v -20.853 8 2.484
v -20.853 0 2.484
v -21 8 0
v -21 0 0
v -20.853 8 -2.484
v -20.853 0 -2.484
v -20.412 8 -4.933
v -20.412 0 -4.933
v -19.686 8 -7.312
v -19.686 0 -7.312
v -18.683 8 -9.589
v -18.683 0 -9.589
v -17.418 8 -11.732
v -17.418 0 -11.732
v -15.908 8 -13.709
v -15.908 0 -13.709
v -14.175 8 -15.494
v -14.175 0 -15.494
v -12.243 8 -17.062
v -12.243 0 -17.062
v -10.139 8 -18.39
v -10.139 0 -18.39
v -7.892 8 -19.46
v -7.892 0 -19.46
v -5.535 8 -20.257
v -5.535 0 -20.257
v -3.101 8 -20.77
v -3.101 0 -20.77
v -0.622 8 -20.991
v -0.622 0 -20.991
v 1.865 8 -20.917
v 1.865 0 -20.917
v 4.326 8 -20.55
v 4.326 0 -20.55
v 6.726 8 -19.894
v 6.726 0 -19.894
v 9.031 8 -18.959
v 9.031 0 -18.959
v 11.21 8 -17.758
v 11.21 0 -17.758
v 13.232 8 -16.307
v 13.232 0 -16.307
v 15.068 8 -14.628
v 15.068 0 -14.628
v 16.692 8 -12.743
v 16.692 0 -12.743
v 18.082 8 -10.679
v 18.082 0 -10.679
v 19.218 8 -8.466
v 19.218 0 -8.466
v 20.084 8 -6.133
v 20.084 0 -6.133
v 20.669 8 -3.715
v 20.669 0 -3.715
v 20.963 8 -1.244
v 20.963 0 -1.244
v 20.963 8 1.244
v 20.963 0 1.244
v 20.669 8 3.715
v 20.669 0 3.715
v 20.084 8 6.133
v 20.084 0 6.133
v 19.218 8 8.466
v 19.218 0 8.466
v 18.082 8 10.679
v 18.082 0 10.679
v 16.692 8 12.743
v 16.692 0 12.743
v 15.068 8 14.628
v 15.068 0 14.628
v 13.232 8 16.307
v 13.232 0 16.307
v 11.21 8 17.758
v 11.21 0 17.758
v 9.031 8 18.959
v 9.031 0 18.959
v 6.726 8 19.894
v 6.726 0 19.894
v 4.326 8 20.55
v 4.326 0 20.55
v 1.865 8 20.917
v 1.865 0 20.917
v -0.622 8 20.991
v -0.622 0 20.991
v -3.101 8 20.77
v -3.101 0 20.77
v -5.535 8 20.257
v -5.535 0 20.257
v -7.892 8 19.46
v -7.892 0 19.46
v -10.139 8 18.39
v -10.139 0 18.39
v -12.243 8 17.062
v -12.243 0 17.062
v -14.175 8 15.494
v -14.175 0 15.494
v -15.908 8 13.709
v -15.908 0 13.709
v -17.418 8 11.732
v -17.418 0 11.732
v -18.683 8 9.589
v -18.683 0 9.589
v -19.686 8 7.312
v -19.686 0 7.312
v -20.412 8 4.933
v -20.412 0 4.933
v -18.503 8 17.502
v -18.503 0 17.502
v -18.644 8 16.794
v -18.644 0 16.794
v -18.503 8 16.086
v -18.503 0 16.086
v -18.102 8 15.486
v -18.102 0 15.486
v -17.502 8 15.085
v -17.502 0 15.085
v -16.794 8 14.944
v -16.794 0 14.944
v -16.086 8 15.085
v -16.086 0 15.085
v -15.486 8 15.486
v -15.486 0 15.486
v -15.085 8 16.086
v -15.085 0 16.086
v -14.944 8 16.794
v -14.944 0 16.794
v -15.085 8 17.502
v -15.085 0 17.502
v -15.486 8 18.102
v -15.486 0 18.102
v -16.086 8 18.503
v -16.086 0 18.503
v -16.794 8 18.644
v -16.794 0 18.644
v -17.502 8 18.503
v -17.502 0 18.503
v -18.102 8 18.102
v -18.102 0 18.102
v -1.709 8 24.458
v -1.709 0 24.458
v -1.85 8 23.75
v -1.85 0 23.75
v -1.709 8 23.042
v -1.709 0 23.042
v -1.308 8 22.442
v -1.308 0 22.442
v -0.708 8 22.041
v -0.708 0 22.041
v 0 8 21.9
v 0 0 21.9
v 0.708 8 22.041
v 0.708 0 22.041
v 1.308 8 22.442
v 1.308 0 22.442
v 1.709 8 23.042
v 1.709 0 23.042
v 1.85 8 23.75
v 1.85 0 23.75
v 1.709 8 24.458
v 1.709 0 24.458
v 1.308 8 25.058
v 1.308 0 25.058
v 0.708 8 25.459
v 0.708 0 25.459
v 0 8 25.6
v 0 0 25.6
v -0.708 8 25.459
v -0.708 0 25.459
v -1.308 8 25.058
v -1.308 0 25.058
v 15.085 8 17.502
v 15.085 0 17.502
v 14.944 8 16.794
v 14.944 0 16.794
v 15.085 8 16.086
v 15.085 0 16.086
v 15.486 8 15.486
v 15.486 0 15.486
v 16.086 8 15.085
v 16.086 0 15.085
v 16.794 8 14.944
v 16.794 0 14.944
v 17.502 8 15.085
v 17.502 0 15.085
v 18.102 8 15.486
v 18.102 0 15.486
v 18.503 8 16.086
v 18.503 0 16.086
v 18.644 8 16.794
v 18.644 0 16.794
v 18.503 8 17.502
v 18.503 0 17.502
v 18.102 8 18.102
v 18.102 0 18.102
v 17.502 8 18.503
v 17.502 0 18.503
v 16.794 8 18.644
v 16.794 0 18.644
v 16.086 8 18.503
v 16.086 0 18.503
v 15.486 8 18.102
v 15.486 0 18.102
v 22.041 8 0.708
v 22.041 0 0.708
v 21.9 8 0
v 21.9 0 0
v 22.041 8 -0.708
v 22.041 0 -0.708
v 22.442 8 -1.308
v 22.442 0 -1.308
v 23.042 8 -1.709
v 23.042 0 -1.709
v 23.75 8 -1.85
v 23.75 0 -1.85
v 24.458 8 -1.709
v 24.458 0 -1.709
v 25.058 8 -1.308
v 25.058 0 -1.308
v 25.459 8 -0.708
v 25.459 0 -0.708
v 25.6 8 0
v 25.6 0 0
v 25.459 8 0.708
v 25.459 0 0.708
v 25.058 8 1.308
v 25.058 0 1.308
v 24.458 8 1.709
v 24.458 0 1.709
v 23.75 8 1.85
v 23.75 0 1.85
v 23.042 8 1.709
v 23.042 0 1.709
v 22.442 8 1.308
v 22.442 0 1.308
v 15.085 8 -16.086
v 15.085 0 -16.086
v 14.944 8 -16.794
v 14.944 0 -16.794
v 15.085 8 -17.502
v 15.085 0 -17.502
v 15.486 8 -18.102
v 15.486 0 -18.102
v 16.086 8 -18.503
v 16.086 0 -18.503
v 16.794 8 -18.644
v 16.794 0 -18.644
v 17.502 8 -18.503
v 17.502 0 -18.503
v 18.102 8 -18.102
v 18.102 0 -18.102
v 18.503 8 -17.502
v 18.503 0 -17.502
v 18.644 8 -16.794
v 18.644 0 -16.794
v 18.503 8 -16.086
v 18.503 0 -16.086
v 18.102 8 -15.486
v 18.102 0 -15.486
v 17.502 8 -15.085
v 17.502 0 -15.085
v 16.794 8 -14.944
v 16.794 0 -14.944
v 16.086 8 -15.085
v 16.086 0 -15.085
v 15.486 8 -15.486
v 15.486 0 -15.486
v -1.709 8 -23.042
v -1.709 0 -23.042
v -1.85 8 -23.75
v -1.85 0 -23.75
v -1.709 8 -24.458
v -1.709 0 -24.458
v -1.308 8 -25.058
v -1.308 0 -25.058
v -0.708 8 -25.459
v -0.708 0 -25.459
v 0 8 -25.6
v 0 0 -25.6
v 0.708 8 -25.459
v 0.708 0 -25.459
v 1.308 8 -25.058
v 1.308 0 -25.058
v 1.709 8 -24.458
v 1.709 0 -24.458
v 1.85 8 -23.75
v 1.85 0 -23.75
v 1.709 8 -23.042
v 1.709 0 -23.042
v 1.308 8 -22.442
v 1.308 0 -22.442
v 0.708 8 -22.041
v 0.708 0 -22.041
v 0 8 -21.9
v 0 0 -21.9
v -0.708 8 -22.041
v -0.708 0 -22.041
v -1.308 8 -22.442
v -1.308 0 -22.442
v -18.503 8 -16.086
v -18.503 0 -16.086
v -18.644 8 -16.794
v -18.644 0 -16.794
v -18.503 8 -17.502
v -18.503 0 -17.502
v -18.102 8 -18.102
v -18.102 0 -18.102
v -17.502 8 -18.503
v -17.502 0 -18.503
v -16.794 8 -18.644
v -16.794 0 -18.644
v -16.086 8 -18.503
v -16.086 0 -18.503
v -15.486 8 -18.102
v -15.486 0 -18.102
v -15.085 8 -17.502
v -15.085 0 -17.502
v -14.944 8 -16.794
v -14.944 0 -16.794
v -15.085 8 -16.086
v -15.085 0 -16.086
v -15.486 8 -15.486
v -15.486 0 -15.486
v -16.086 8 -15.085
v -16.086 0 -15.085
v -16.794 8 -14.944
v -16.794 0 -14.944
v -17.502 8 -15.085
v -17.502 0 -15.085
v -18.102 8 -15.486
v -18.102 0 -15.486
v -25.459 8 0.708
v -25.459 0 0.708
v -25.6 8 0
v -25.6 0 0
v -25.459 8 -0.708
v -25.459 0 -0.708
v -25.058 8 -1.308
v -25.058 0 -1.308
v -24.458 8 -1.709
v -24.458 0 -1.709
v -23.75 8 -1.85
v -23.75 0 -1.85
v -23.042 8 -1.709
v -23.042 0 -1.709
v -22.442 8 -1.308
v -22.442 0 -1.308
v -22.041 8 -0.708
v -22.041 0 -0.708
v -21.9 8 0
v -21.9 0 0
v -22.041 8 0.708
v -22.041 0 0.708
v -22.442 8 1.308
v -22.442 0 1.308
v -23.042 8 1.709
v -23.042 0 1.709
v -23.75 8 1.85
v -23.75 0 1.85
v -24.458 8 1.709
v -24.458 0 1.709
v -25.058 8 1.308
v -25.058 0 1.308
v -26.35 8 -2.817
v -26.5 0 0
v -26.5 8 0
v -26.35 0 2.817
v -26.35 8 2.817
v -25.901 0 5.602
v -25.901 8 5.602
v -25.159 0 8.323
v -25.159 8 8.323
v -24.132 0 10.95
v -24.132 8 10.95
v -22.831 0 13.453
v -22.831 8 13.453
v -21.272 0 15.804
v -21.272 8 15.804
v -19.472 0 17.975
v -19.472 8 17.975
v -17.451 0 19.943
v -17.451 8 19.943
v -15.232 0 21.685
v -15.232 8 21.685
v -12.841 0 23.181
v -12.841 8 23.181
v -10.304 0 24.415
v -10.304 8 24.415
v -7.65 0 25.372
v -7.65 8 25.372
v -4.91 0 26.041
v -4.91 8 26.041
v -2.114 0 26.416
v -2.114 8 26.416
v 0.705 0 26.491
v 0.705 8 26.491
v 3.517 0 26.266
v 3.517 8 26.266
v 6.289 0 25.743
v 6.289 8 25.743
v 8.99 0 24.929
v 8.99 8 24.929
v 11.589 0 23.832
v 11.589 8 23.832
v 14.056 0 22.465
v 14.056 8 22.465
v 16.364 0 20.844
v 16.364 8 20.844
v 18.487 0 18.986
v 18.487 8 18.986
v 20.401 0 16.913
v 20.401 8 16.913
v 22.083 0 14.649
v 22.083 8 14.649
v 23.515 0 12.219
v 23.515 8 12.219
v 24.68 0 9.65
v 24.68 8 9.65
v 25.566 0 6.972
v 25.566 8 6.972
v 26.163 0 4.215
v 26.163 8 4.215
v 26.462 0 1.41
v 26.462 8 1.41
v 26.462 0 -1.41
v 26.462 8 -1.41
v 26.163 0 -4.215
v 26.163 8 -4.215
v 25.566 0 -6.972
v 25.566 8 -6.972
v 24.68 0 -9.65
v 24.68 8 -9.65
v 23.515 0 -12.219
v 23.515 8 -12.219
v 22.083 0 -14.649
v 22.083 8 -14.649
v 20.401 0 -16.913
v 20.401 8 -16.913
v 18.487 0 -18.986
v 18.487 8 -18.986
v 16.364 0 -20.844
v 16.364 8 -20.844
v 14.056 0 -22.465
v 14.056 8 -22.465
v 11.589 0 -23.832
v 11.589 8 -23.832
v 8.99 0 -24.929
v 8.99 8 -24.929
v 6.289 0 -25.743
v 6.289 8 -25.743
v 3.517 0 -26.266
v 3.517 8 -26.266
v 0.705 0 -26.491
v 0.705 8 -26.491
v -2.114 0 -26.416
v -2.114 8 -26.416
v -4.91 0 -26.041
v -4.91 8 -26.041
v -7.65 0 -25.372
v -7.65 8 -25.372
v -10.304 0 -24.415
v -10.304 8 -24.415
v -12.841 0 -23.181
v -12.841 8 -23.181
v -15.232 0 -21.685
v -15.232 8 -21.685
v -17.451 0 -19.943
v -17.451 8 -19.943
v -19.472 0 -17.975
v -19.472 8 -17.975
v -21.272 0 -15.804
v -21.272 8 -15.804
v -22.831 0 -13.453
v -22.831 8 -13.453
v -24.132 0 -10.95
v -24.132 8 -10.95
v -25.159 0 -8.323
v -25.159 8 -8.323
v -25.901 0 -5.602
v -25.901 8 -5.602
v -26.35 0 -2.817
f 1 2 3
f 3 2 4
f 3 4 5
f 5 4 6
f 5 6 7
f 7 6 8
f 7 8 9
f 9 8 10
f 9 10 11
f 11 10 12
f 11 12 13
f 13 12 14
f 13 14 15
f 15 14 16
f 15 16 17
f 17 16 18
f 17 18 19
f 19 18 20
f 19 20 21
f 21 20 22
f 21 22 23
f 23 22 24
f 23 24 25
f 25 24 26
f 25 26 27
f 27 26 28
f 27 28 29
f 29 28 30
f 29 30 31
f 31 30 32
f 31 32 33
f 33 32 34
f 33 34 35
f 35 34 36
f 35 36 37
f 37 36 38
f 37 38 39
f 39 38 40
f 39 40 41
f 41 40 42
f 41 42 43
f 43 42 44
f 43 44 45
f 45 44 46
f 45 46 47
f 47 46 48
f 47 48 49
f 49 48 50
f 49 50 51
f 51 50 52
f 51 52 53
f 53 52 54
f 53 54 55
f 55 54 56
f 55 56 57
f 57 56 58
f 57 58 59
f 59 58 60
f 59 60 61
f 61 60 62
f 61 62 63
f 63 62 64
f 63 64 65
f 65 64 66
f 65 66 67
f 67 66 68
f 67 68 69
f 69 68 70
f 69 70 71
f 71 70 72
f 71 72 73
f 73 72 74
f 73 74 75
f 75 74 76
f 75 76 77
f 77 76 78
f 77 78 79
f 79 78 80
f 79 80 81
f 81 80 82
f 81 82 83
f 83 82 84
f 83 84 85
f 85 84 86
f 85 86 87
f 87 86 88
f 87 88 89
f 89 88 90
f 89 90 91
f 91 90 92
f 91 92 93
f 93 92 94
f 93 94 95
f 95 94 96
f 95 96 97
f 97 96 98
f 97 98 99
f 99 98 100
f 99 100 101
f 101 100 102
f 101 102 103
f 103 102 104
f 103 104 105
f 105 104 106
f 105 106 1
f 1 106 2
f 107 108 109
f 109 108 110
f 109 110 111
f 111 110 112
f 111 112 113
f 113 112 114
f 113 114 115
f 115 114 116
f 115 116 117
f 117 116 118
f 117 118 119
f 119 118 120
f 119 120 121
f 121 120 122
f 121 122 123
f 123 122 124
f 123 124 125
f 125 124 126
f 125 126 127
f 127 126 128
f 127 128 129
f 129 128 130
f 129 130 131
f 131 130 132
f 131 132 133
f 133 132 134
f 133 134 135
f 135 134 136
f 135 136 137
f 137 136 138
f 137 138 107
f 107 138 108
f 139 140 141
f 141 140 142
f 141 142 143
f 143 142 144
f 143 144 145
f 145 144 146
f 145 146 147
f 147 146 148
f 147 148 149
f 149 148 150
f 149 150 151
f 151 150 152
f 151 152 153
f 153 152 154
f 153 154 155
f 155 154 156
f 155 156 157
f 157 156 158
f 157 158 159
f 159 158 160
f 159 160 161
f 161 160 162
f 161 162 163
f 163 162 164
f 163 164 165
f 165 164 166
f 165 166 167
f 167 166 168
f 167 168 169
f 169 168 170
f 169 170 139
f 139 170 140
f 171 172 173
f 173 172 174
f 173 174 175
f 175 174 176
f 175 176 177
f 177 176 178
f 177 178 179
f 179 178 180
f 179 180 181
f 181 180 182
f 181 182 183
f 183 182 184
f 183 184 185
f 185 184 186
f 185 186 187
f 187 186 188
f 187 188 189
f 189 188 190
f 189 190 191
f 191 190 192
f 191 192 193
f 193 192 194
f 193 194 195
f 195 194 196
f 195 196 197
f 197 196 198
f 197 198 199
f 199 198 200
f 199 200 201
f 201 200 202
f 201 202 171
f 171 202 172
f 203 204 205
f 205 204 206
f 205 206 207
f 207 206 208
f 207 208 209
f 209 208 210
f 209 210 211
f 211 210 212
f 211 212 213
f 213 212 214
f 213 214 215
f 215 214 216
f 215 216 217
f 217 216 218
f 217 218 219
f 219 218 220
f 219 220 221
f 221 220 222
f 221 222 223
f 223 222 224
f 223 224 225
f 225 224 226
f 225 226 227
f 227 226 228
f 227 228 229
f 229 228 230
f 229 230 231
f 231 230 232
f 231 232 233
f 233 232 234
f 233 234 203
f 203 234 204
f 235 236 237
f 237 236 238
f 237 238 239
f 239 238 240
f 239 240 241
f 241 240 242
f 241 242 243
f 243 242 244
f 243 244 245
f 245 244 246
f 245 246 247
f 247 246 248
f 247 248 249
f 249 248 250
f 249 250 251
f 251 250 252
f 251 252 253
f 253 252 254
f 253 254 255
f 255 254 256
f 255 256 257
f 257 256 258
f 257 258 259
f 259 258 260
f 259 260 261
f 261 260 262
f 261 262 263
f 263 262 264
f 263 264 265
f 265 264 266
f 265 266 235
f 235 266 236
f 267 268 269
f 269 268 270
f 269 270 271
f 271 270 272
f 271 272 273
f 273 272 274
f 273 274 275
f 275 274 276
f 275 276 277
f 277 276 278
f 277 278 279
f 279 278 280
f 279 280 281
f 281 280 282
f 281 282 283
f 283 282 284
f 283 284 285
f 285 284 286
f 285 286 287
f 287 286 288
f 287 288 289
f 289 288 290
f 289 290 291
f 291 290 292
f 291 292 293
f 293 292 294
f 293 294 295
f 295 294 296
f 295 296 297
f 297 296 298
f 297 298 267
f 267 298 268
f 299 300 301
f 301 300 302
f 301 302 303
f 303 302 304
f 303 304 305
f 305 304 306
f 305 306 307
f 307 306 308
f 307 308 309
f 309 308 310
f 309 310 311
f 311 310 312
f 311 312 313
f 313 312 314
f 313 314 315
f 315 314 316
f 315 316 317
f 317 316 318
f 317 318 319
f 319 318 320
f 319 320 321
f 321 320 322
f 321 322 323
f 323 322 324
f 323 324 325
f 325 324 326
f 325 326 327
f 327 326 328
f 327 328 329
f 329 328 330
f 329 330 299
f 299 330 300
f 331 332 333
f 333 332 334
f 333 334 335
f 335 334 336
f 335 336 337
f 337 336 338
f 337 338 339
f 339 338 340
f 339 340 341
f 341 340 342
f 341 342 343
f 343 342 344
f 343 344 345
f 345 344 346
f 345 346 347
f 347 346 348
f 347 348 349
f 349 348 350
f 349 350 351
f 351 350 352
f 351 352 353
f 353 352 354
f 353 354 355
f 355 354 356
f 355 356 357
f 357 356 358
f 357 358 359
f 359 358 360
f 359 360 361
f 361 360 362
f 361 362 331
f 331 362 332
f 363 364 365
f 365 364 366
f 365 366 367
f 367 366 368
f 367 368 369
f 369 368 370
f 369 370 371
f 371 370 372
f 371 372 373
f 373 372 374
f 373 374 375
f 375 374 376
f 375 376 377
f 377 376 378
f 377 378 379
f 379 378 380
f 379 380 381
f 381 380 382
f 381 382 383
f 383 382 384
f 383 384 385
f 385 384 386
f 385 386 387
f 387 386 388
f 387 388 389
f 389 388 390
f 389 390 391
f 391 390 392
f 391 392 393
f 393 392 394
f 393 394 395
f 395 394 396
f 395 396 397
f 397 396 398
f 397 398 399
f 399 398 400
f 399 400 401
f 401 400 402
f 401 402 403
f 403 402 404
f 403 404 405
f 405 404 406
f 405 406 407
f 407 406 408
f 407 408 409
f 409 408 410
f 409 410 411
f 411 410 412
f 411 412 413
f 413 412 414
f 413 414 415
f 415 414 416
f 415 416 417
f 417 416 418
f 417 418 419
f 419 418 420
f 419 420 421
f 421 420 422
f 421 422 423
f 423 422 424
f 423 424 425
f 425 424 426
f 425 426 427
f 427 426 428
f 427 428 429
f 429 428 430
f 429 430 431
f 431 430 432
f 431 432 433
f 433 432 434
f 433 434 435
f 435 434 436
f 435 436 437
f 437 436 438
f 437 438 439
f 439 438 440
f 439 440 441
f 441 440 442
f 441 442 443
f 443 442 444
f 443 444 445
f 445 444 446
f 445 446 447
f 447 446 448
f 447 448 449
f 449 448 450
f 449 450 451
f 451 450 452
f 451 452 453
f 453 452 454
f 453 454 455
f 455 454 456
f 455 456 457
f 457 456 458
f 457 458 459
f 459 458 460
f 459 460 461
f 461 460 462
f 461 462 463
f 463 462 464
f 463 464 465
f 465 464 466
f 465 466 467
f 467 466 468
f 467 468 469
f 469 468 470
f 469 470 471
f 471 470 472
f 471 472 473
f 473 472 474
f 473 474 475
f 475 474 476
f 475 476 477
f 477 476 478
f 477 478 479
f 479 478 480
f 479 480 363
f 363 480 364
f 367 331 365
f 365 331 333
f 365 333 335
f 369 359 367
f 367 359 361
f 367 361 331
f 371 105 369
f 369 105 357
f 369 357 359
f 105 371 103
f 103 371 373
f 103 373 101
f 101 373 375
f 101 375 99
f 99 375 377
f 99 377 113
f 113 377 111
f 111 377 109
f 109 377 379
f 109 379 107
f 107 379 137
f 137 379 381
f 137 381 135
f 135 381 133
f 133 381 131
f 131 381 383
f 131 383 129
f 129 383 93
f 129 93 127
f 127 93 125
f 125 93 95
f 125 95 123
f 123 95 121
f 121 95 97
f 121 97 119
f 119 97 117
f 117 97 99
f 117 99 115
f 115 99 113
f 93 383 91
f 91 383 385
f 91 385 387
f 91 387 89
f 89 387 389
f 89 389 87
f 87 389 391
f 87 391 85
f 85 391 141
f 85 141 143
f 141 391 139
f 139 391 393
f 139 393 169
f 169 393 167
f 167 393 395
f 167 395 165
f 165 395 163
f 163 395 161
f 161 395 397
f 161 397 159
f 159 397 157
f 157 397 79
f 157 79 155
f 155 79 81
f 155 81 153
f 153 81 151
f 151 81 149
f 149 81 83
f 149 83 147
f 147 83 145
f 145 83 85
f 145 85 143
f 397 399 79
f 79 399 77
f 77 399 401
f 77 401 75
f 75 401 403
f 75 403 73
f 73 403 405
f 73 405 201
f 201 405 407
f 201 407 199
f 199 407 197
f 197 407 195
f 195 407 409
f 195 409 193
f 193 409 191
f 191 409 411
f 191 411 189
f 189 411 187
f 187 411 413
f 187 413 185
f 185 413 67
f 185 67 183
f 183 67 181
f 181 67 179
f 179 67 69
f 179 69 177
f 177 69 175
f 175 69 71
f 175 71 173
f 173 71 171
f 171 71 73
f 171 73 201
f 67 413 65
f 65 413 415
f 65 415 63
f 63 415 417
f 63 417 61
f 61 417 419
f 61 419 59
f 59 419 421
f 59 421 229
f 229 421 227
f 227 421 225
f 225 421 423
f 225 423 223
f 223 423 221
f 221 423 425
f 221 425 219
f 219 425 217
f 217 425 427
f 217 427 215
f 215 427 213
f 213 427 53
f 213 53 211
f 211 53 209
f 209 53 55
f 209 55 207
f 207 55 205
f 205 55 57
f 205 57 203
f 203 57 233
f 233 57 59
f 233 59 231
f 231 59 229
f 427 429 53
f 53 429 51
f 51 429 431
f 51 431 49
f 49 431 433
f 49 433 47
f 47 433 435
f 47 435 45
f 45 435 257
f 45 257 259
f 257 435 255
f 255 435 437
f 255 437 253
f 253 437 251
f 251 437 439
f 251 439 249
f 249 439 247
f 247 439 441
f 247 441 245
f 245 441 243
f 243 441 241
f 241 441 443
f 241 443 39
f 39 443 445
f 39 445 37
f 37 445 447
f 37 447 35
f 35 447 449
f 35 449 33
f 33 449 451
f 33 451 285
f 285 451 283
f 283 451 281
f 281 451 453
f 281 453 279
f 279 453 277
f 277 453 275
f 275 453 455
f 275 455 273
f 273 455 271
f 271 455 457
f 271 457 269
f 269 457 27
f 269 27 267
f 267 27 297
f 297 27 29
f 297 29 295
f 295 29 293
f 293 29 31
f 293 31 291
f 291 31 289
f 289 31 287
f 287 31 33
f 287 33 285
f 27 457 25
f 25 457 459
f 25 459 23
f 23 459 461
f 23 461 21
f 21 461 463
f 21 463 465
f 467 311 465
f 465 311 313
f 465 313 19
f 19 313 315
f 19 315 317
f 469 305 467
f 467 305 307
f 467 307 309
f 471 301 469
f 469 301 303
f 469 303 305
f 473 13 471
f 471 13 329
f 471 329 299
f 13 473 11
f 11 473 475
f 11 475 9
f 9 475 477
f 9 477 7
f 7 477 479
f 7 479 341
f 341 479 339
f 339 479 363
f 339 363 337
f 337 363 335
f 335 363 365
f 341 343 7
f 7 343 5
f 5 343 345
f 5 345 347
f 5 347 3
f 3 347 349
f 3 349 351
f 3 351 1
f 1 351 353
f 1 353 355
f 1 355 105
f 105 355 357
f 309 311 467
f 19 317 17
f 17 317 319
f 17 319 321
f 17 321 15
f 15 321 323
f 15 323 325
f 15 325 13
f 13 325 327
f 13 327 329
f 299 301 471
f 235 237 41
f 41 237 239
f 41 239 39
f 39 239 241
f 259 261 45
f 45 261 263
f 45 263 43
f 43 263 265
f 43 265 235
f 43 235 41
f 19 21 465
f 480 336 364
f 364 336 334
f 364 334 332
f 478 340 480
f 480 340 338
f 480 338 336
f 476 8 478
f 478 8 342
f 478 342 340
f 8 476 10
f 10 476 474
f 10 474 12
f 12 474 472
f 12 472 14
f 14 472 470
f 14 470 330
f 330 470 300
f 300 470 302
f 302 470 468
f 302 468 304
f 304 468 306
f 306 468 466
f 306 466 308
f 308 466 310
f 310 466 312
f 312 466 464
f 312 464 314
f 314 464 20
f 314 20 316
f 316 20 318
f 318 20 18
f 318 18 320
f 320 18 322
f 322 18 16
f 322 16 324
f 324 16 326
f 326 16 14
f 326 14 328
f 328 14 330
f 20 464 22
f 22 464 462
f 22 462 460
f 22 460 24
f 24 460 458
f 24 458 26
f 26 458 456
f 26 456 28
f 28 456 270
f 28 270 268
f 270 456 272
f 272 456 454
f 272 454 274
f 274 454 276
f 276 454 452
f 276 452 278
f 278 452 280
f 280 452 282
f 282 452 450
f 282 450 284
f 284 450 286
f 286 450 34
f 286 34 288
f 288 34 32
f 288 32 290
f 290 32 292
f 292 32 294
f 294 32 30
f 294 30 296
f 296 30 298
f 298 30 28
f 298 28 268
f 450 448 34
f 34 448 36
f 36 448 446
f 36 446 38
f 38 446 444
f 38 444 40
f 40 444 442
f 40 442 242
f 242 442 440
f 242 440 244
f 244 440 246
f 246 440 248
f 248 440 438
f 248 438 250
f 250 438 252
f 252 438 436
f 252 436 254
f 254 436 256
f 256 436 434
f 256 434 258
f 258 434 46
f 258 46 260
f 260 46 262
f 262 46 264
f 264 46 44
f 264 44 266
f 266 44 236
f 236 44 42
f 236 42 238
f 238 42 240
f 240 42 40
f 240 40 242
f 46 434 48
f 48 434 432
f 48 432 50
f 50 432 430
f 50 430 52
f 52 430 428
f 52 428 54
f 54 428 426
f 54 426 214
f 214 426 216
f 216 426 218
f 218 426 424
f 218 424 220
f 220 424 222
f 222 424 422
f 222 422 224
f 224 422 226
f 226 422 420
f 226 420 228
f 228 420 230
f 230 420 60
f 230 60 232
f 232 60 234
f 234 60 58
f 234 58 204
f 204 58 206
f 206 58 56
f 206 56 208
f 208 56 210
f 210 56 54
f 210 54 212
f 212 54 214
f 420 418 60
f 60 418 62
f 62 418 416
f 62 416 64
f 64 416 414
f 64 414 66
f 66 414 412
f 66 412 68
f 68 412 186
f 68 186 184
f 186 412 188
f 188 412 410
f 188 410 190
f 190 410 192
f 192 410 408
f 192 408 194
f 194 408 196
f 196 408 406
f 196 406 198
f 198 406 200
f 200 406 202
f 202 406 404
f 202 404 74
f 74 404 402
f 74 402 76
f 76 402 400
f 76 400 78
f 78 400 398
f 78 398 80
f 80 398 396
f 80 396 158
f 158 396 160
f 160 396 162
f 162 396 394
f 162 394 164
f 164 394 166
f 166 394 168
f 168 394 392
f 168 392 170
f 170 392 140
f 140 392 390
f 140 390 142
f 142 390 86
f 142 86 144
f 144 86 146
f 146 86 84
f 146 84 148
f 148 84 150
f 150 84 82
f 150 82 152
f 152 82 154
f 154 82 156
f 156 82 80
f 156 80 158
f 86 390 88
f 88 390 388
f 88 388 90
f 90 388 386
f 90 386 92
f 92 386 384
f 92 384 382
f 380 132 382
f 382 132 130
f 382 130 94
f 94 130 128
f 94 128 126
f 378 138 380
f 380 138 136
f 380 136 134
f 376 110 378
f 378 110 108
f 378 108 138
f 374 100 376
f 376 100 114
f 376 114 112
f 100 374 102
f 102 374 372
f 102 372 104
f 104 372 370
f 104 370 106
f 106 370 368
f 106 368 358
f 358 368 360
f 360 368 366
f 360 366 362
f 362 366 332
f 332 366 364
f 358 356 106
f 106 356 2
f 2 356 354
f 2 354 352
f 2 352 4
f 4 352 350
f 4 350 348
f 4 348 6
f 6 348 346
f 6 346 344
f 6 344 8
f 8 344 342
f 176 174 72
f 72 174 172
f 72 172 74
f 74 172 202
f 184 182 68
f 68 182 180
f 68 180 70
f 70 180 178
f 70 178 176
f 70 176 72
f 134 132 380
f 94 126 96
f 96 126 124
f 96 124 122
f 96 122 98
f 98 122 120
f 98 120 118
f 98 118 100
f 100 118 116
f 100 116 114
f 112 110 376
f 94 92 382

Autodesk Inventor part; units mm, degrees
ref_plane "YZ Plane" through (0, 0, 0) normal (1, 0, 0) x (0, 1, 0)
ref_plane "XZ Plane" through (0, 0, 0) normal (0, 1, 0) x (-1, 0, 0)
ref_plane "XY Plane" through (0, 0, 0) normal (0, 0, 1) x (1, 0, 0)
sketch "Szkic1" plane through (0, 0, 0) normal (0, 1, 0) x (-1, 0, 0)
  circle A0 centre (0, 0) radius 21
  circle A1 centre (0, 0) radius 26.5
  circle A2 centre (16.7938, 16.7938) radius 1.85
  circle A3 centre (0, 23.75) radius 1.85
  circle A4 centre (-16.7938, 16.7938) radius 1.85
  circle A5 centre (-23.75, 0) radius 1.85
  circle A6 centre (-16.7938, -16.7938) radius 1.85
  circle A7 centre (0, -23.75) radius 1.85
  circle A8 centre (16.7938, -16.7938) radius 1.85
  circle A9 centre (23.75, 0) radius 1.85
  line L0 (0, 21) -> (0, 26.5)
  dimension "d0" = 42
  dimension "d8" = 53
  dimension "d1" = 3.7
  dimension "d4" = 360
extrude "Wyciągnięcie proste1" add sketch "Szkic1" along normal blind 8
properties part number "Bell_KoloFormaGora"
